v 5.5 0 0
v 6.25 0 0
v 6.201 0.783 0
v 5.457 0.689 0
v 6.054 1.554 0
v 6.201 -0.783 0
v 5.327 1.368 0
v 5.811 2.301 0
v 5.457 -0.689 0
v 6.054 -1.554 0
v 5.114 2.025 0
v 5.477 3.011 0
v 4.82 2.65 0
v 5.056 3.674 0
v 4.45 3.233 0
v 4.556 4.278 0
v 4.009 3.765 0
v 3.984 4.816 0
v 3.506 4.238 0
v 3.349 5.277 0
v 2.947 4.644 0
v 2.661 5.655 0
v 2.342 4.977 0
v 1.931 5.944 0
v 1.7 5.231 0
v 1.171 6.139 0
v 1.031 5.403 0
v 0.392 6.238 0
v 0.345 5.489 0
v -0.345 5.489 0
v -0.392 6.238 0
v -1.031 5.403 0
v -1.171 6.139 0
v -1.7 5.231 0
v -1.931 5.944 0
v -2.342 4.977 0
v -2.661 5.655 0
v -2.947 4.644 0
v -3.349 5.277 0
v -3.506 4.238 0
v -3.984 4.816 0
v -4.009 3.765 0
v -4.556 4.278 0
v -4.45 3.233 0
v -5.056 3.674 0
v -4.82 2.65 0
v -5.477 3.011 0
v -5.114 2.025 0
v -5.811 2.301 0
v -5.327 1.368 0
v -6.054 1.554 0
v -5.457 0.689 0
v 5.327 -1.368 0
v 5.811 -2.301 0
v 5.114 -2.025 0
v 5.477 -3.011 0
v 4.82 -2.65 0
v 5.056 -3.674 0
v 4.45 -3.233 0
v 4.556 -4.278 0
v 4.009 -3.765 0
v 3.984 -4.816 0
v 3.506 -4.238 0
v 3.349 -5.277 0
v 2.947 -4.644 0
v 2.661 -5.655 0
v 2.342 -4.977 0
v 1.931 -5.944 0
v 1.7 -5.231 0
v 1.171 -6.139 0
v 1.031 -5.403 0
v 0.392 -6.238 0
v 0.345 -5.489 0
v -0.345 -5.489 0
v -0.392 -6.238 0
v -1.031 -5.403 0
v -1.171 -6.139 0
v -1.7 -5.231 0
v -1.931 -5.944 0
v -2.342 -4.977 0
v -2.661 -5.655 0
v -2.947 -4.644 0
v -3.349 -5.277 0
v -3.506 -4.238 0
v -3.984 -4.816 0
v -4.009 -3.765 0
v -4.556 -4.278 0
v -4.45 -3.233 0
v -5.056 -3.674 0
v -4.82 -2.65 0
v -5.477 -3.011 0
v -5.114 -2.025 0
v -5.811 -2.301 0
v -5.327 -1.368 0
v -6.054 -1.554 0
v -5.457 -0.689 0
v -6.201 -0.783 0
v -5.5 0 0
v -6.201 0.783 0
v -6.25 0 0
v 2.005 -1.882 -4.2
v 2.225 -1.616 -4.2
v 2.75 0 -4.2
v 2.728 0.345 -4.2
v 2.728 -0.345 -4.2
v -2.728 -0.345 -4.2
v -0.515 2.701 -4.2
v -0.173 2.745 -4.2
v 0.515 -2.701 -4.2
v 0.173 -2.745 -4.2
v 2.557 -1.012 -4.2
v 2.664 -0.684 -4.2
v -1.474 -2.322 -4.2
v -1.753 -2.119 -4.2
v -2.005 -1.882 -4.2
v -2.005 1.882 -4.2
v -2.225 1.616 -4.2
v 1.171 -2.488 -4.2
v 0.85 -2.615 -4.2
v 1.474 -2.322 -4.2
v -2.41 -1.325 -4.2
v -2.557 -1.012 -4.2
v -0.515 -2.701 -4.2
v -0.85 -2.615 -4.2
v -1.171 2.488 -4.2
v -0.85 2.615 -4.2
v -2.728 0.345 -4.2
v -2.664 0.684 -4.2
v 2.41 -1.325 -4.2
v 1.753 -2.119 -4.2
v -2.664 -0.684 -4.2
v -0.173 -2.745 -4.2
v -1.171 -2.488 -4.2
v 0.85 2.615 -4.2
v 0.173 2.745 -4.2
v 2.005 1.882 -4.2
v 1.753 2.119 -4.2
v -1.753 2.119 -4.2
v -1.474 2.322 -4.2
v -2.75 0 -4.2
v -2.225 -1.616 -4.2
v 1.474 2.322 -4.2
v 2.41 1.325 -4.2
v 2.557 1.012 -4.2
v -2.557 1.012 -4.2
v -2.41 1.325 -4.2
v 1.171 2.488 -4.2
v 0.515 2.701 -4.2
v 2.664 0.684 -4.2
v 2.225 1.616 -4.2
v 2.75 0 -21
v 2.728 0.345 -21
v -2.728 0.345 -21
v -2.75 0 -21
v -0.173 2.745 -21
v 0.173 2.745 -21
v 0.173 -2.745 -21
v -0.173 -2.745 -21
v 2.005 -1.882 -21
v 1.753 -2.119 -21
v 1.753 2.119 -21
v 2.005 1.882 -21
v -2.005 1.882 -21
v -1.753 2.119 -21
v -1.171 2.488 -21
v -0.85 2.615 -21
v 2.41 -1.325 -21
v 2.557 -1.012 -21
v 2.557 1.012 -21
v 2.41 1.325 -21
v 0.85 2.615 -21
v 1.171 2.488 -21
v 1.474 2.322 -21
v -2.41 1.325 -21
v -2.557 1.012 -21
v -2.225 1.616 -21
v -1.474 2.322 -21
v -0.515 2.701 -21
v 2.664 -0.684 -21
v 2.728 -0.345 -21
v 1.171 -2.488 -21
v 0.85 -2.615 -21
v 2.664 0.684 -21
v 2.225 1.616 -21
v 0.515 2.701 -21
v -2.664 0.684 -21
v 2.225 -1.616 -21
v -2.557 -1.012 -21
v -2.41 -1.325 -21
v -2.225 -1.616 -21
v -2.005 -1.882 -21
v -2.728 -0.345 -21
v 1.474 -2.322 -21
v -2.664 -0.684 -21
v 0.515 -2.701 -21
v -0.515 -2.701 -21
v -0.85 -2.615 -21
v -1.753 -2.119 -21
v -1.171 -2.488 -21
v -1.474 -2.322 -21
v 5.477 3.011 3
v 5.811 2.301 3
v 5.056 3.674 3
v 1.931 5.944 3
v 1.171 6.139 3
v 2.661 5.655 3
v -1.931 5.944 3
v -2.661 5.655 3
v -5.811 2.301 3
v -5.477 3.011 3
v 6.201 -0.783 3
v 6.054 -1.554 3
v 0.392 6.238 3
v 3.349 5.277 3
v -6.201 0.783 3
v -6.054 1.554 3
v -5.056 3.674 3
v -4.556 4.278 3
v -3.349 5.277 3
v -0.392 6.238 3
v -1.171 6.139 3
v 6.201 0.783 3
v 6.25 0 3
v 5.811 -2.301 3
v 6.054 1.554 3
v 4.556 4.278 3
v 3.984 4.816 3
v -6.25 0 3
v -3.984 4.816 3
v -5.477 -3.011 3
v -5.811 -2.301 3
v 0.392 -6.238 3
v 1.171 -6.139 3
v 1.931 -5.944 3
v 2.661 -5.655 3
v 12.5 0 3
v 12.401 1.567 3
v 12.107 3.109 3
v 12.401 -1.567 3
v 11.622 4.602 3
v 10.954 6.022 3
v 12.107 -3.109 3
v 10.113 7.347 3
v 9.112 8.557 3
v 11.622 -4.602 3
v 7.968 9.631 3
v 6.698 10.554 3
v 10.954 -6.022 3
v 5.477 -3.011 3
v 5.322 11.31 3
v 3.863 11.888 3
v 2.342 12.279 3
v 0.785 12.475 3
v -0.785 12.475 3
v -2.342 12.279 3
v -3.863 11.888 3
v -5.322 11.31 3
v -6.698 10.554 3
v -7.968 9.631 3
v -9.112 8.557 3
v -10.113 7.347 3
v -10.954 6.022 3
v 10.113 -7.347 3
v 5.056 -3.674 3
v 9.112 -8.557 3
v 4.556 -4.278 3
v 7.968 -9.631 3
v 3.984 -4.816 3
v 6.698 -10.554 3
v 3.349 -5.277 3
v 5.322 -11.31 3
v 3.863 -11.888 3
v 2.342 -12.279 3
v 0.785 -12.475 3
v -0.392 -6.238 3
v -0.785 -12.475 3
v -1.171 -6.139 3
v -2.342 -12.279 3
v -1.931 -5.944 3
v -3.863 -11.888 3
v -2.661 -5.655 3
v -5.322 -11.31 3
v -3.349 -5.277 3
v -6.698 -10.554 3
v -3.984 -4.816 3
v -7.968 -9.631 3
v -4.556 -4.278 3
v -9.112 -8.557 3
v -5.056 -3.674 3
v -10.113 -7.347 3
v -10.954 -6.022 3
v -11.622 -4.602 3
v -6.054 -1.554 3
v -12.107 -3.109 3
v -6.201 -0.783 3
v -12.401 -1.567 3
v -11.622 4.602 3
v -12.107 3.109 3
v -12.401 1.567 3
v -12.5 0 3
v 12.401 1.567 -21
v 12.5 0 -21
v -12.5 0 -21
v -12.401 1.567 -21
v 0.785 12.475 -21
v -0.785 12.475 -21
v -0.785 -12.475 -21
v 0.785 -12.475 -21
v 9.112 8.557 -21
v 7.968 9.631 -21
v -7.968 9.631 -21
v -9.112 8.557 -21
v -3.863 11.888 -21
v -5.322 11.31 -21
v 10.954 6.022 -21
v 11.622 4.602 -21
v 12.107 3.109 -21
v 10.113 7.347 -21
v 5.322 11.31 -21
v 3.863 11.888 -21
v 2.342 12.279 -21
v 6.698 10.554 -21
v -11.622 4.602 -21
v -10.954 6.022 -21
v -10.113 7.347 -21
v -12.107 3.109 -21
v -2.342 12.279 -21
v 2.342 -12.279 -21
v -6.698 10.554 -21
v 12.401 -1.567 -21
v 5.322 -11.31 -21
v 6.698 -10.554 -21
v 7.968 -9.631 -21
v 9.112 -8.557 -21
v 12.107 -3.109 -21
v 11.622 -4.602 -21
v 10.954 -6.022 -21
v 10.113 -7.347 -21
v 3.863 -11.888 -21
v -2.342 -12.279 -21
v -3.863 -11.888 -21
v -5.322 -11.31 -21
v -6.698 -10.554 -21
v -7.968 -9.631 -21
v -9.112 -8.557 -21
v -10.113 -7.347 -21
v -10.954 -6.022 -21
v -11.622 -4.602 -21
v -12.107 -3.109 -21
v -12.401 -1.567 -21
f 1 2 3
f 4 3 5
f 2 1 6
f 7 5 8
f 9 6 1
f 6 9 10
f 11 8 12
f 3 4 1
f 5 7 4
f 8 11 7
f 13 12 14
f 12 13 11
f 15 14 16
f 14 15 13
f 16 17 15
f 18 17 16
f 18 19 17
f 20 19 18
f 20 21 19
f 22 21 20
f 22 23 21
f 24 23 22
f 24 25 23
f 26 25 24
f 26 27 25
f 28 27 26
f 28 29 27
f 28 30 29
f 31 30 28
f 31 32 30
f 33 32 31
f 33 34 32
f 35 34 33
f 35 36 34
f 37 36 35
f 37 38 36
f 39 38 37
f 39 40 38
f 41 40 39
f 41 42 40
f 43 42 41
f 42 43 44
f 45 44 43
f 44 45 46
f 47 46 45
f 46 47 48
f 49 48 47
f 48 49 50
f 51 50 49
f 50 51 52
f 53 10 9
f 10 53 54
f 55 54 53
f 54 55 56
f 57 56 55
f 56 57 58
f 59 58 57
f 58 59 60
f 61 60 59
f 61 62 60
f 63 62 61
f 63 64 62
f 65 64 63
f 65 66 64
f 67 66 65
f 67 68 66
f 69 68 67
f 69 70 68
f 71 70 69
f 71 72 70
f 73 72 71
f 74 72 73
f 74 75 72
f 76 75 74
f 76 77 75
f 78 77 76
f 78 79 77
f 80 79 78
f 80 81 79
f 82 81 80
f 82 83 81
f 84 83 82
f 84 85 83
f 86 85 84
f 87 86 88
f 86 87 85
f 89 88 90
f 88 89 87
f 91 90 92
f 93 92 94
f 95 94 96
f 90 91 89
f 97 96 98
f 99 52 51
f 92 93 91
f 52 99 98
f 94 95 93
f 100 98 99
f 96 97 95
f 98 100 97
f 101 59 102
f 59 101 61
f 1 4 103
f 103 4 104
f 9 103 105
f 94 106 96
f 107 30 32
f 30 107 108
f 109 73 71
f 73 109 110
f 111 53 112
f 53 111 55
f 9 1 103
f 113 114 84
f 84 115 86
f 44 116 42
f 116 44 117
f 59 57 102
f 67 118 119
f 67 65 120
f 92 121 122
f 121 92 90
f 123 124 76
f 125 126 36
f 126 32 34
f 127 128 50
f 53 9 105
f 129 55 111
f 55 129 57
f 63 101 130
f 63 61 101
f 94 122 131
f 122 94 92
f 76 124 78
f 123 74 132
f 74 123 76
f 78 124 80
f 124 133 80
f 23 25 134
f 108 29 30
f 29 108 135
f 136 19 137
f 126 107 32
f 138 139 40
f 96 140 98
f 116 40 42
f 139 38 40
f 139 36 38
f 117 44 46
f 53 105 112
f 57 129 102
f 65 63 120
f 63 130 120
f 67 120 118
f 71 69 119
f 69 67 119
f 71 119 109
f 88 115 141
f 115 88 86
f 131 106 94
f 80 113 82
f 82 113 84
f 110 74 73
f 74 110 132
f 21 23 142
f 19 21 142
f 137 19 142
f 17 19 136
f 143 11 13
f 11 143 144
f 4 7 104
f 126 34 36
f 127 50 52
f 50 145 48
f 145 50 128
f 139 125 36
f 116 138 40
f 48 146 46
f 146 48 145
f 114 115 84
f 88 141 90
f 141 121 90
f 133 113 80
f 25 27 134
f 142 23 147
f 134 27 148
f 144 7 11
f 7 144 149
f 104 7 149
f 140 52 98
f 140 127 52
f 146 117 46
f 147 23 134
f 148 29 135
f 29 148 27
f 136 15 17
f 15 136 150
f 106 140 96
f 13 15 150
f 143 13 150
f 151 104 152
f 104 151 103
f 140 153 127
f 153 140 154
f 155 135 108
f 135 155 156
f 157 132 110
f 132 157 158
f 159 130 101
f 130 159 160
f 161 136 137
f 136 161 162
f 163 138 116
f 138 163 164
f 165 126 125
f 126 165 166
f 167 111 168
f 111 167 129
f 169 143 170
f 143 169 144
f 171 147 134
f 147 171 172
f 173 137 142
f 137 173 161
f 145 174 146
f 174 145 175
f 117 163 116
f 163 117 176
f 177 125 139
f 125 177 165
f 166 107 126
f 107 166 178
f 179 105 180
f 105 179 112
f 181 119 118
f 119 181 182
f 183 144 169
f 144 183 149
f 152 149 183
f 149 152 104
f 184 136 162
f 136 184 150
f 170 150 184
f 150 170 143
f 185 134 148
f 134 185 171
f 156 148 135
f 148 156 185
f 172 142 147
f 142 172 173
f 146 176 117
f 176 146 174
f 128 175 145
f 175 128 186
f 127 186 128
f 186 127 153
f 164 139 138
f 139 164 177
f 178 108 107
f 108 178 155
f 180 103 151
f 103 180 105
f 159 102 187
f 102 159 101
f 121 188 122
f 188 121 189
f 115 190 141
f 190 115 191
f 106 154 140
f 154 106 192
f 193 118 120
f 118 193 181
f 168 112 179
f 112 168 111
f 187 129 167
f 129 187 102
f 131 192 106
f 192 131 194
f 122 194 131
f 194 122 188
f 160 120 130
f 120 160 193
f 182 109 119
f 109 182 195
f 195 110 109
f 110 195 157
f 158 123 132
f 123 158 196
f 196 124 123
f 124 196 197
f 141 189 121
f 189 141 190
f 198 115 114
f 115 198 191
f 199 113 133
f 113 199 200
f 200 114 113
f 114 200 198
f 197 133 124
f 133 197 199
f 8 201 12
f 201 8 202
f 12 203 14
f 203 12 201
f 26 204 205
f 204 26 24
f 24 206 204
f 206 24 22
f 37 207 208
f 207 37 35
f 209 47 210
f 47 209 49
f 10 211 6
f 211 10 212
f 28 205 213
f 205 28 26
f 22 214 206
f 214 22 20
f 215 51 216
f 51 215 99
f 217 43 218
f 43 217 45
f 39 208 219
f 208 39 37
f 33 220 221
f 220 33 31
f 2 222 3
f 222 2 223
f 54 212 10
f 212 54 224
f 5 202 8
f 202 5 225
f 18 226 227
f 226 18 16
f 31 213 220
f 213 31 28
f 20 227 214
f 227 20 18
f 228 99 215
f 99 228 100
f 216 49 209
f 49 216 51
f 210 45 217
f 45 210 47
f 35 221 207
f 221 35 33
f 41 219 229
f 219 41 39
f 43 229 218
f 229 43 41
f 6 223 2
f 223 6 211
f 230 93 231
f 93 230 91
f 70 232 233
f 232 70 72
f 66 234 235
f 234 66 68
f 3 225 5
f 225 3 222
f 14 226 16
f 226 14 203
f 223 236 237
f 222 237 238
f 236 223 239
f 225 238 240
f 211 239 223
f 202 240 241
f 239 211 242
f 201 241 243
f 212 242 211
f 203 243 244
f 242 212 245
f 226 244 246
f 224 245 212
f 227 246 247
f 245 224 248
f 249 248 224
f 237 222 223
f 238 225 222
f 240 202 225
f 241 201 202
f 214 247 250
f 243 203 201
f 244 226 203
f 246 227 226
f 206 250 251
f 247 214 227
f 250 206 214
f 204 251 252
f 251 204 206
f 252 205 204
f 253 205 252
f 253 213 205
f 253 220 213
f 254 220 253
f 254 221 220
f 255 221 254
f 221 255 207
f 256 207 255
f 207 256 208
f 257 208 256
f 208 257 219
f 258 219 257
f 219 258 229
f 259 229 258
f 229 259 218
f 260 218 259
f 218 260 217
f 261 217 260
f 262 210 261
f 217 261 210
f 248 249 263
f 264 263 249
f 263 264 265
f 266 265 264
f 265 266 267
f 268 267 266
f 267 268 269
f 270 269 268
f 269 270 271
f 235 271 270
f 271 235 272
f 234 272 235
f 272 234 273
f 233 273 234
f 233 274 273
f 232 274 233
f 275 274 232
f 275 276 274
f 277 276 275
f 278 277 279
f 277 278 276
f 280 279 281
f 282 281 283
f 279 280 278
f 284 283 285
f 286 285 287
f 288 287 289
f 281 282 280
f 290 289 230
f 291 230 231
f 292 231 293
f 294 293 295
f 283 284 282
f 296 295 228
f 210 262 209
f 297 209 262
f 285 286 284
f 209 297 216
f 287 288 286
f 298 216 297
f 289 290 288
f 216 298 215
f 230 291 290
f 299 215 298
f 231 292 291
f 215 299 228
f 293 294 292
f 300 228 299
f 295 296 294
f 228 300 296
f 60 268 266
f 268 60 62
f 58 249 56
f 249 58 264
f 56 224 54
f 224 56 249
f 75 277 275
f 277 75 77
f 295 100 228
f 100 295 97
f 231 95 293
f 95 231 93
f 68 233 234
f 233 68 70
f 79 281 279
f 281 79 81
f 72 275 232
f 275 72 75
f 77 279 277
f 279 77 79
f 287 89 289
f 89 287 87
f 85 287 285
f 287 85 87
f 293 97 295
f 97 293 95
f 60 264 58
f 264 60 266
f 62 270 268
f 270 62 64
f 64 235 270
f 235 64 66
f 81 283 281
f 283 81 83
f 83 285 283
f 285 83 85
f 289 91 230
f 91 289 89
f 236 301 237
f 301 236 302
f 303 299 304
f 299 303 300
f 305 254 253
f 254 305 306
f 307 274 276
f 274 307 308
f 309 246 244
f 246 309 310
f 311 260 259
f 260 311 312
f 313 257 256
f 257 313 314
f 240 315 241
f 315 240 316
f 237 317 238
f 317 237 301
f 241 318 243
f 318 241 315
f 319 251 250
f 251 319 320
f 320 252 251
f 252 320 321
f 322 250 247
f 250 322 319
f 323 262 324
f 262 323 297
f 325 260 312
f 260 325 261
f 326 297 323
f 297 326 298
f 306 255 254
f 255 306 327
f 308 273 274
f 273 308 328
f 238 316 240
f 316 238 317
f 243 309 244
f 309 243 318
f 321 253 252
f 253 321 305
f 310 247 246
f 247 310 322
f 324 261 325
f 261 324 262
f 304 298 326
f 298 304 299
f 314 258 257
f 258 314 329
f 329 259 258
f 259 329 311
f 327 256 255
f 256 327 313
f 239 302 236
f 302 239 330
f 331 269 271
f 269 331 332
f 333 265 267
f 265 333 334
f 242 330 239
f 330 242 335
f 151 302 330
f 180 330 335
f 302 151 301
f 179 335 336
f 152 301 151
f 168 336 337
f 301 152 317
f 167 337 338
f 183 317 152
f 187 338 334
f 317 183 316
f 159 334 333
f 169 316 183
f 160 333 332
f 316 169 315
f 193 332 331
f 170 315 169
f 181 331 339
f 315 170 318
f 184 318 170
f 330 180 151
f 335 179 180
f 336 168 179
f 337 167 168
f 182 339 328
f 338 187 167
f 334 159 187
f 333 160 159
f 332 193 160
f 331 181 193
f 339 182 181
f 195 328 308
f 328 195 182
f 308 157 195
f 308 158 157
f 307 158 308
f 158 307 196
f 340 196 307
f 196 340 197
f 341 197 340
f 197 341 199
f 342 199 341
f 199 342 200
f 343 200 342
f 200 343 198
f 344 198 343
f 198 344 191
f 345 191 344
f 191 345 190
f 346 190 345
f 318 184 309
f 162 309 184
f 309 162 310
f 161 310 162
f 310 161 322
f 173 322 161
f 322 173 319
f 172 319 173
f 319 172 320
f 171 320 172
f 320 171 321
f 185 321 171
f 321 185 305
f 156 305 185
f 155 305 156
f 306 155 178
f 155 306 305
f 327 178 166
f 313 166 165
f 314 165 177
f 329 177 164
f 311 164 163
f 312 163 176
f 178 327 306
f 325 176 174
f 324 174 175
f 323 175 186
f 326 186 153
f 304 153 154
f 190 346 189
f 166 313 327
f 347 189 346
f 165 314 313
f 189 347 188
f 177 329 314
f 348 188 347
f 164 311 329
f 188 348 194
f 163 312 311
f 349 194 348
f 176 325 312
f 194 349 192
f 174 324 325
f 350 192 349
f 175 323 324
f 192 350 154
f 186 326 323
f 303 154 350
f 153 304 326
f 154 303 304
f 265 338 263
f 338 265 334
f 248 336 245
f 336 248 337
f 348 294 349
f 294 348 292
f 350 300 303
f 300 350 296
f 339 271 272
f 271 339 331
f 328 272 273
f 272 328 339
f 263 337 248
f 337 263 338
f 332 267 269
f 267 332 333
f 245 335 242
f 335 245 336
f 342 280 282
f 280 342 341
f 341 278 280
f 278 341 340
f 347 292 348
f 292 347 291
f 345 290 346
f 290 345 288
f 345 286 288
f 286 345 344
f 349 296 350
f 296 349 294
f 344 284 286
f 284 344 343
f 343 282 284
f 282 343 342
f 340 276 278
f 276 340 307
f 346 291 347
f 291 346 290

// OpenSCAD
$fn = 50;

difference() {
	union() {
		translate(v = [0, 0, -21.0]) {
			cylinder(h = 24, r = 12.5);
		}
	}
	union() {
		translate(v = [0, 0, 0]) {
			rotate(a = [0, 0, 0]) {
				difference() {
					union() {
						translate(v = [0, 0, -24.0]) {
							cylinder(h = 24, r = 2.25);
						}
						translate(v = [0, 0, -4.2]) {
							cylinder(h = 4.2, r1 = 2.75, r2 = 5.5);
						}
						translate(v = [0, 0, -24.0]) {
							cylinder(h = 24, r = 2.75);
						}
						translate(v = [0, 0, -24.0]) {
							cylinder(h = 24, r = 2.25);
						}
					}
					union();
				}
			}
		}
		#cylinder(h = 3, r = 6.25);
	}
}
